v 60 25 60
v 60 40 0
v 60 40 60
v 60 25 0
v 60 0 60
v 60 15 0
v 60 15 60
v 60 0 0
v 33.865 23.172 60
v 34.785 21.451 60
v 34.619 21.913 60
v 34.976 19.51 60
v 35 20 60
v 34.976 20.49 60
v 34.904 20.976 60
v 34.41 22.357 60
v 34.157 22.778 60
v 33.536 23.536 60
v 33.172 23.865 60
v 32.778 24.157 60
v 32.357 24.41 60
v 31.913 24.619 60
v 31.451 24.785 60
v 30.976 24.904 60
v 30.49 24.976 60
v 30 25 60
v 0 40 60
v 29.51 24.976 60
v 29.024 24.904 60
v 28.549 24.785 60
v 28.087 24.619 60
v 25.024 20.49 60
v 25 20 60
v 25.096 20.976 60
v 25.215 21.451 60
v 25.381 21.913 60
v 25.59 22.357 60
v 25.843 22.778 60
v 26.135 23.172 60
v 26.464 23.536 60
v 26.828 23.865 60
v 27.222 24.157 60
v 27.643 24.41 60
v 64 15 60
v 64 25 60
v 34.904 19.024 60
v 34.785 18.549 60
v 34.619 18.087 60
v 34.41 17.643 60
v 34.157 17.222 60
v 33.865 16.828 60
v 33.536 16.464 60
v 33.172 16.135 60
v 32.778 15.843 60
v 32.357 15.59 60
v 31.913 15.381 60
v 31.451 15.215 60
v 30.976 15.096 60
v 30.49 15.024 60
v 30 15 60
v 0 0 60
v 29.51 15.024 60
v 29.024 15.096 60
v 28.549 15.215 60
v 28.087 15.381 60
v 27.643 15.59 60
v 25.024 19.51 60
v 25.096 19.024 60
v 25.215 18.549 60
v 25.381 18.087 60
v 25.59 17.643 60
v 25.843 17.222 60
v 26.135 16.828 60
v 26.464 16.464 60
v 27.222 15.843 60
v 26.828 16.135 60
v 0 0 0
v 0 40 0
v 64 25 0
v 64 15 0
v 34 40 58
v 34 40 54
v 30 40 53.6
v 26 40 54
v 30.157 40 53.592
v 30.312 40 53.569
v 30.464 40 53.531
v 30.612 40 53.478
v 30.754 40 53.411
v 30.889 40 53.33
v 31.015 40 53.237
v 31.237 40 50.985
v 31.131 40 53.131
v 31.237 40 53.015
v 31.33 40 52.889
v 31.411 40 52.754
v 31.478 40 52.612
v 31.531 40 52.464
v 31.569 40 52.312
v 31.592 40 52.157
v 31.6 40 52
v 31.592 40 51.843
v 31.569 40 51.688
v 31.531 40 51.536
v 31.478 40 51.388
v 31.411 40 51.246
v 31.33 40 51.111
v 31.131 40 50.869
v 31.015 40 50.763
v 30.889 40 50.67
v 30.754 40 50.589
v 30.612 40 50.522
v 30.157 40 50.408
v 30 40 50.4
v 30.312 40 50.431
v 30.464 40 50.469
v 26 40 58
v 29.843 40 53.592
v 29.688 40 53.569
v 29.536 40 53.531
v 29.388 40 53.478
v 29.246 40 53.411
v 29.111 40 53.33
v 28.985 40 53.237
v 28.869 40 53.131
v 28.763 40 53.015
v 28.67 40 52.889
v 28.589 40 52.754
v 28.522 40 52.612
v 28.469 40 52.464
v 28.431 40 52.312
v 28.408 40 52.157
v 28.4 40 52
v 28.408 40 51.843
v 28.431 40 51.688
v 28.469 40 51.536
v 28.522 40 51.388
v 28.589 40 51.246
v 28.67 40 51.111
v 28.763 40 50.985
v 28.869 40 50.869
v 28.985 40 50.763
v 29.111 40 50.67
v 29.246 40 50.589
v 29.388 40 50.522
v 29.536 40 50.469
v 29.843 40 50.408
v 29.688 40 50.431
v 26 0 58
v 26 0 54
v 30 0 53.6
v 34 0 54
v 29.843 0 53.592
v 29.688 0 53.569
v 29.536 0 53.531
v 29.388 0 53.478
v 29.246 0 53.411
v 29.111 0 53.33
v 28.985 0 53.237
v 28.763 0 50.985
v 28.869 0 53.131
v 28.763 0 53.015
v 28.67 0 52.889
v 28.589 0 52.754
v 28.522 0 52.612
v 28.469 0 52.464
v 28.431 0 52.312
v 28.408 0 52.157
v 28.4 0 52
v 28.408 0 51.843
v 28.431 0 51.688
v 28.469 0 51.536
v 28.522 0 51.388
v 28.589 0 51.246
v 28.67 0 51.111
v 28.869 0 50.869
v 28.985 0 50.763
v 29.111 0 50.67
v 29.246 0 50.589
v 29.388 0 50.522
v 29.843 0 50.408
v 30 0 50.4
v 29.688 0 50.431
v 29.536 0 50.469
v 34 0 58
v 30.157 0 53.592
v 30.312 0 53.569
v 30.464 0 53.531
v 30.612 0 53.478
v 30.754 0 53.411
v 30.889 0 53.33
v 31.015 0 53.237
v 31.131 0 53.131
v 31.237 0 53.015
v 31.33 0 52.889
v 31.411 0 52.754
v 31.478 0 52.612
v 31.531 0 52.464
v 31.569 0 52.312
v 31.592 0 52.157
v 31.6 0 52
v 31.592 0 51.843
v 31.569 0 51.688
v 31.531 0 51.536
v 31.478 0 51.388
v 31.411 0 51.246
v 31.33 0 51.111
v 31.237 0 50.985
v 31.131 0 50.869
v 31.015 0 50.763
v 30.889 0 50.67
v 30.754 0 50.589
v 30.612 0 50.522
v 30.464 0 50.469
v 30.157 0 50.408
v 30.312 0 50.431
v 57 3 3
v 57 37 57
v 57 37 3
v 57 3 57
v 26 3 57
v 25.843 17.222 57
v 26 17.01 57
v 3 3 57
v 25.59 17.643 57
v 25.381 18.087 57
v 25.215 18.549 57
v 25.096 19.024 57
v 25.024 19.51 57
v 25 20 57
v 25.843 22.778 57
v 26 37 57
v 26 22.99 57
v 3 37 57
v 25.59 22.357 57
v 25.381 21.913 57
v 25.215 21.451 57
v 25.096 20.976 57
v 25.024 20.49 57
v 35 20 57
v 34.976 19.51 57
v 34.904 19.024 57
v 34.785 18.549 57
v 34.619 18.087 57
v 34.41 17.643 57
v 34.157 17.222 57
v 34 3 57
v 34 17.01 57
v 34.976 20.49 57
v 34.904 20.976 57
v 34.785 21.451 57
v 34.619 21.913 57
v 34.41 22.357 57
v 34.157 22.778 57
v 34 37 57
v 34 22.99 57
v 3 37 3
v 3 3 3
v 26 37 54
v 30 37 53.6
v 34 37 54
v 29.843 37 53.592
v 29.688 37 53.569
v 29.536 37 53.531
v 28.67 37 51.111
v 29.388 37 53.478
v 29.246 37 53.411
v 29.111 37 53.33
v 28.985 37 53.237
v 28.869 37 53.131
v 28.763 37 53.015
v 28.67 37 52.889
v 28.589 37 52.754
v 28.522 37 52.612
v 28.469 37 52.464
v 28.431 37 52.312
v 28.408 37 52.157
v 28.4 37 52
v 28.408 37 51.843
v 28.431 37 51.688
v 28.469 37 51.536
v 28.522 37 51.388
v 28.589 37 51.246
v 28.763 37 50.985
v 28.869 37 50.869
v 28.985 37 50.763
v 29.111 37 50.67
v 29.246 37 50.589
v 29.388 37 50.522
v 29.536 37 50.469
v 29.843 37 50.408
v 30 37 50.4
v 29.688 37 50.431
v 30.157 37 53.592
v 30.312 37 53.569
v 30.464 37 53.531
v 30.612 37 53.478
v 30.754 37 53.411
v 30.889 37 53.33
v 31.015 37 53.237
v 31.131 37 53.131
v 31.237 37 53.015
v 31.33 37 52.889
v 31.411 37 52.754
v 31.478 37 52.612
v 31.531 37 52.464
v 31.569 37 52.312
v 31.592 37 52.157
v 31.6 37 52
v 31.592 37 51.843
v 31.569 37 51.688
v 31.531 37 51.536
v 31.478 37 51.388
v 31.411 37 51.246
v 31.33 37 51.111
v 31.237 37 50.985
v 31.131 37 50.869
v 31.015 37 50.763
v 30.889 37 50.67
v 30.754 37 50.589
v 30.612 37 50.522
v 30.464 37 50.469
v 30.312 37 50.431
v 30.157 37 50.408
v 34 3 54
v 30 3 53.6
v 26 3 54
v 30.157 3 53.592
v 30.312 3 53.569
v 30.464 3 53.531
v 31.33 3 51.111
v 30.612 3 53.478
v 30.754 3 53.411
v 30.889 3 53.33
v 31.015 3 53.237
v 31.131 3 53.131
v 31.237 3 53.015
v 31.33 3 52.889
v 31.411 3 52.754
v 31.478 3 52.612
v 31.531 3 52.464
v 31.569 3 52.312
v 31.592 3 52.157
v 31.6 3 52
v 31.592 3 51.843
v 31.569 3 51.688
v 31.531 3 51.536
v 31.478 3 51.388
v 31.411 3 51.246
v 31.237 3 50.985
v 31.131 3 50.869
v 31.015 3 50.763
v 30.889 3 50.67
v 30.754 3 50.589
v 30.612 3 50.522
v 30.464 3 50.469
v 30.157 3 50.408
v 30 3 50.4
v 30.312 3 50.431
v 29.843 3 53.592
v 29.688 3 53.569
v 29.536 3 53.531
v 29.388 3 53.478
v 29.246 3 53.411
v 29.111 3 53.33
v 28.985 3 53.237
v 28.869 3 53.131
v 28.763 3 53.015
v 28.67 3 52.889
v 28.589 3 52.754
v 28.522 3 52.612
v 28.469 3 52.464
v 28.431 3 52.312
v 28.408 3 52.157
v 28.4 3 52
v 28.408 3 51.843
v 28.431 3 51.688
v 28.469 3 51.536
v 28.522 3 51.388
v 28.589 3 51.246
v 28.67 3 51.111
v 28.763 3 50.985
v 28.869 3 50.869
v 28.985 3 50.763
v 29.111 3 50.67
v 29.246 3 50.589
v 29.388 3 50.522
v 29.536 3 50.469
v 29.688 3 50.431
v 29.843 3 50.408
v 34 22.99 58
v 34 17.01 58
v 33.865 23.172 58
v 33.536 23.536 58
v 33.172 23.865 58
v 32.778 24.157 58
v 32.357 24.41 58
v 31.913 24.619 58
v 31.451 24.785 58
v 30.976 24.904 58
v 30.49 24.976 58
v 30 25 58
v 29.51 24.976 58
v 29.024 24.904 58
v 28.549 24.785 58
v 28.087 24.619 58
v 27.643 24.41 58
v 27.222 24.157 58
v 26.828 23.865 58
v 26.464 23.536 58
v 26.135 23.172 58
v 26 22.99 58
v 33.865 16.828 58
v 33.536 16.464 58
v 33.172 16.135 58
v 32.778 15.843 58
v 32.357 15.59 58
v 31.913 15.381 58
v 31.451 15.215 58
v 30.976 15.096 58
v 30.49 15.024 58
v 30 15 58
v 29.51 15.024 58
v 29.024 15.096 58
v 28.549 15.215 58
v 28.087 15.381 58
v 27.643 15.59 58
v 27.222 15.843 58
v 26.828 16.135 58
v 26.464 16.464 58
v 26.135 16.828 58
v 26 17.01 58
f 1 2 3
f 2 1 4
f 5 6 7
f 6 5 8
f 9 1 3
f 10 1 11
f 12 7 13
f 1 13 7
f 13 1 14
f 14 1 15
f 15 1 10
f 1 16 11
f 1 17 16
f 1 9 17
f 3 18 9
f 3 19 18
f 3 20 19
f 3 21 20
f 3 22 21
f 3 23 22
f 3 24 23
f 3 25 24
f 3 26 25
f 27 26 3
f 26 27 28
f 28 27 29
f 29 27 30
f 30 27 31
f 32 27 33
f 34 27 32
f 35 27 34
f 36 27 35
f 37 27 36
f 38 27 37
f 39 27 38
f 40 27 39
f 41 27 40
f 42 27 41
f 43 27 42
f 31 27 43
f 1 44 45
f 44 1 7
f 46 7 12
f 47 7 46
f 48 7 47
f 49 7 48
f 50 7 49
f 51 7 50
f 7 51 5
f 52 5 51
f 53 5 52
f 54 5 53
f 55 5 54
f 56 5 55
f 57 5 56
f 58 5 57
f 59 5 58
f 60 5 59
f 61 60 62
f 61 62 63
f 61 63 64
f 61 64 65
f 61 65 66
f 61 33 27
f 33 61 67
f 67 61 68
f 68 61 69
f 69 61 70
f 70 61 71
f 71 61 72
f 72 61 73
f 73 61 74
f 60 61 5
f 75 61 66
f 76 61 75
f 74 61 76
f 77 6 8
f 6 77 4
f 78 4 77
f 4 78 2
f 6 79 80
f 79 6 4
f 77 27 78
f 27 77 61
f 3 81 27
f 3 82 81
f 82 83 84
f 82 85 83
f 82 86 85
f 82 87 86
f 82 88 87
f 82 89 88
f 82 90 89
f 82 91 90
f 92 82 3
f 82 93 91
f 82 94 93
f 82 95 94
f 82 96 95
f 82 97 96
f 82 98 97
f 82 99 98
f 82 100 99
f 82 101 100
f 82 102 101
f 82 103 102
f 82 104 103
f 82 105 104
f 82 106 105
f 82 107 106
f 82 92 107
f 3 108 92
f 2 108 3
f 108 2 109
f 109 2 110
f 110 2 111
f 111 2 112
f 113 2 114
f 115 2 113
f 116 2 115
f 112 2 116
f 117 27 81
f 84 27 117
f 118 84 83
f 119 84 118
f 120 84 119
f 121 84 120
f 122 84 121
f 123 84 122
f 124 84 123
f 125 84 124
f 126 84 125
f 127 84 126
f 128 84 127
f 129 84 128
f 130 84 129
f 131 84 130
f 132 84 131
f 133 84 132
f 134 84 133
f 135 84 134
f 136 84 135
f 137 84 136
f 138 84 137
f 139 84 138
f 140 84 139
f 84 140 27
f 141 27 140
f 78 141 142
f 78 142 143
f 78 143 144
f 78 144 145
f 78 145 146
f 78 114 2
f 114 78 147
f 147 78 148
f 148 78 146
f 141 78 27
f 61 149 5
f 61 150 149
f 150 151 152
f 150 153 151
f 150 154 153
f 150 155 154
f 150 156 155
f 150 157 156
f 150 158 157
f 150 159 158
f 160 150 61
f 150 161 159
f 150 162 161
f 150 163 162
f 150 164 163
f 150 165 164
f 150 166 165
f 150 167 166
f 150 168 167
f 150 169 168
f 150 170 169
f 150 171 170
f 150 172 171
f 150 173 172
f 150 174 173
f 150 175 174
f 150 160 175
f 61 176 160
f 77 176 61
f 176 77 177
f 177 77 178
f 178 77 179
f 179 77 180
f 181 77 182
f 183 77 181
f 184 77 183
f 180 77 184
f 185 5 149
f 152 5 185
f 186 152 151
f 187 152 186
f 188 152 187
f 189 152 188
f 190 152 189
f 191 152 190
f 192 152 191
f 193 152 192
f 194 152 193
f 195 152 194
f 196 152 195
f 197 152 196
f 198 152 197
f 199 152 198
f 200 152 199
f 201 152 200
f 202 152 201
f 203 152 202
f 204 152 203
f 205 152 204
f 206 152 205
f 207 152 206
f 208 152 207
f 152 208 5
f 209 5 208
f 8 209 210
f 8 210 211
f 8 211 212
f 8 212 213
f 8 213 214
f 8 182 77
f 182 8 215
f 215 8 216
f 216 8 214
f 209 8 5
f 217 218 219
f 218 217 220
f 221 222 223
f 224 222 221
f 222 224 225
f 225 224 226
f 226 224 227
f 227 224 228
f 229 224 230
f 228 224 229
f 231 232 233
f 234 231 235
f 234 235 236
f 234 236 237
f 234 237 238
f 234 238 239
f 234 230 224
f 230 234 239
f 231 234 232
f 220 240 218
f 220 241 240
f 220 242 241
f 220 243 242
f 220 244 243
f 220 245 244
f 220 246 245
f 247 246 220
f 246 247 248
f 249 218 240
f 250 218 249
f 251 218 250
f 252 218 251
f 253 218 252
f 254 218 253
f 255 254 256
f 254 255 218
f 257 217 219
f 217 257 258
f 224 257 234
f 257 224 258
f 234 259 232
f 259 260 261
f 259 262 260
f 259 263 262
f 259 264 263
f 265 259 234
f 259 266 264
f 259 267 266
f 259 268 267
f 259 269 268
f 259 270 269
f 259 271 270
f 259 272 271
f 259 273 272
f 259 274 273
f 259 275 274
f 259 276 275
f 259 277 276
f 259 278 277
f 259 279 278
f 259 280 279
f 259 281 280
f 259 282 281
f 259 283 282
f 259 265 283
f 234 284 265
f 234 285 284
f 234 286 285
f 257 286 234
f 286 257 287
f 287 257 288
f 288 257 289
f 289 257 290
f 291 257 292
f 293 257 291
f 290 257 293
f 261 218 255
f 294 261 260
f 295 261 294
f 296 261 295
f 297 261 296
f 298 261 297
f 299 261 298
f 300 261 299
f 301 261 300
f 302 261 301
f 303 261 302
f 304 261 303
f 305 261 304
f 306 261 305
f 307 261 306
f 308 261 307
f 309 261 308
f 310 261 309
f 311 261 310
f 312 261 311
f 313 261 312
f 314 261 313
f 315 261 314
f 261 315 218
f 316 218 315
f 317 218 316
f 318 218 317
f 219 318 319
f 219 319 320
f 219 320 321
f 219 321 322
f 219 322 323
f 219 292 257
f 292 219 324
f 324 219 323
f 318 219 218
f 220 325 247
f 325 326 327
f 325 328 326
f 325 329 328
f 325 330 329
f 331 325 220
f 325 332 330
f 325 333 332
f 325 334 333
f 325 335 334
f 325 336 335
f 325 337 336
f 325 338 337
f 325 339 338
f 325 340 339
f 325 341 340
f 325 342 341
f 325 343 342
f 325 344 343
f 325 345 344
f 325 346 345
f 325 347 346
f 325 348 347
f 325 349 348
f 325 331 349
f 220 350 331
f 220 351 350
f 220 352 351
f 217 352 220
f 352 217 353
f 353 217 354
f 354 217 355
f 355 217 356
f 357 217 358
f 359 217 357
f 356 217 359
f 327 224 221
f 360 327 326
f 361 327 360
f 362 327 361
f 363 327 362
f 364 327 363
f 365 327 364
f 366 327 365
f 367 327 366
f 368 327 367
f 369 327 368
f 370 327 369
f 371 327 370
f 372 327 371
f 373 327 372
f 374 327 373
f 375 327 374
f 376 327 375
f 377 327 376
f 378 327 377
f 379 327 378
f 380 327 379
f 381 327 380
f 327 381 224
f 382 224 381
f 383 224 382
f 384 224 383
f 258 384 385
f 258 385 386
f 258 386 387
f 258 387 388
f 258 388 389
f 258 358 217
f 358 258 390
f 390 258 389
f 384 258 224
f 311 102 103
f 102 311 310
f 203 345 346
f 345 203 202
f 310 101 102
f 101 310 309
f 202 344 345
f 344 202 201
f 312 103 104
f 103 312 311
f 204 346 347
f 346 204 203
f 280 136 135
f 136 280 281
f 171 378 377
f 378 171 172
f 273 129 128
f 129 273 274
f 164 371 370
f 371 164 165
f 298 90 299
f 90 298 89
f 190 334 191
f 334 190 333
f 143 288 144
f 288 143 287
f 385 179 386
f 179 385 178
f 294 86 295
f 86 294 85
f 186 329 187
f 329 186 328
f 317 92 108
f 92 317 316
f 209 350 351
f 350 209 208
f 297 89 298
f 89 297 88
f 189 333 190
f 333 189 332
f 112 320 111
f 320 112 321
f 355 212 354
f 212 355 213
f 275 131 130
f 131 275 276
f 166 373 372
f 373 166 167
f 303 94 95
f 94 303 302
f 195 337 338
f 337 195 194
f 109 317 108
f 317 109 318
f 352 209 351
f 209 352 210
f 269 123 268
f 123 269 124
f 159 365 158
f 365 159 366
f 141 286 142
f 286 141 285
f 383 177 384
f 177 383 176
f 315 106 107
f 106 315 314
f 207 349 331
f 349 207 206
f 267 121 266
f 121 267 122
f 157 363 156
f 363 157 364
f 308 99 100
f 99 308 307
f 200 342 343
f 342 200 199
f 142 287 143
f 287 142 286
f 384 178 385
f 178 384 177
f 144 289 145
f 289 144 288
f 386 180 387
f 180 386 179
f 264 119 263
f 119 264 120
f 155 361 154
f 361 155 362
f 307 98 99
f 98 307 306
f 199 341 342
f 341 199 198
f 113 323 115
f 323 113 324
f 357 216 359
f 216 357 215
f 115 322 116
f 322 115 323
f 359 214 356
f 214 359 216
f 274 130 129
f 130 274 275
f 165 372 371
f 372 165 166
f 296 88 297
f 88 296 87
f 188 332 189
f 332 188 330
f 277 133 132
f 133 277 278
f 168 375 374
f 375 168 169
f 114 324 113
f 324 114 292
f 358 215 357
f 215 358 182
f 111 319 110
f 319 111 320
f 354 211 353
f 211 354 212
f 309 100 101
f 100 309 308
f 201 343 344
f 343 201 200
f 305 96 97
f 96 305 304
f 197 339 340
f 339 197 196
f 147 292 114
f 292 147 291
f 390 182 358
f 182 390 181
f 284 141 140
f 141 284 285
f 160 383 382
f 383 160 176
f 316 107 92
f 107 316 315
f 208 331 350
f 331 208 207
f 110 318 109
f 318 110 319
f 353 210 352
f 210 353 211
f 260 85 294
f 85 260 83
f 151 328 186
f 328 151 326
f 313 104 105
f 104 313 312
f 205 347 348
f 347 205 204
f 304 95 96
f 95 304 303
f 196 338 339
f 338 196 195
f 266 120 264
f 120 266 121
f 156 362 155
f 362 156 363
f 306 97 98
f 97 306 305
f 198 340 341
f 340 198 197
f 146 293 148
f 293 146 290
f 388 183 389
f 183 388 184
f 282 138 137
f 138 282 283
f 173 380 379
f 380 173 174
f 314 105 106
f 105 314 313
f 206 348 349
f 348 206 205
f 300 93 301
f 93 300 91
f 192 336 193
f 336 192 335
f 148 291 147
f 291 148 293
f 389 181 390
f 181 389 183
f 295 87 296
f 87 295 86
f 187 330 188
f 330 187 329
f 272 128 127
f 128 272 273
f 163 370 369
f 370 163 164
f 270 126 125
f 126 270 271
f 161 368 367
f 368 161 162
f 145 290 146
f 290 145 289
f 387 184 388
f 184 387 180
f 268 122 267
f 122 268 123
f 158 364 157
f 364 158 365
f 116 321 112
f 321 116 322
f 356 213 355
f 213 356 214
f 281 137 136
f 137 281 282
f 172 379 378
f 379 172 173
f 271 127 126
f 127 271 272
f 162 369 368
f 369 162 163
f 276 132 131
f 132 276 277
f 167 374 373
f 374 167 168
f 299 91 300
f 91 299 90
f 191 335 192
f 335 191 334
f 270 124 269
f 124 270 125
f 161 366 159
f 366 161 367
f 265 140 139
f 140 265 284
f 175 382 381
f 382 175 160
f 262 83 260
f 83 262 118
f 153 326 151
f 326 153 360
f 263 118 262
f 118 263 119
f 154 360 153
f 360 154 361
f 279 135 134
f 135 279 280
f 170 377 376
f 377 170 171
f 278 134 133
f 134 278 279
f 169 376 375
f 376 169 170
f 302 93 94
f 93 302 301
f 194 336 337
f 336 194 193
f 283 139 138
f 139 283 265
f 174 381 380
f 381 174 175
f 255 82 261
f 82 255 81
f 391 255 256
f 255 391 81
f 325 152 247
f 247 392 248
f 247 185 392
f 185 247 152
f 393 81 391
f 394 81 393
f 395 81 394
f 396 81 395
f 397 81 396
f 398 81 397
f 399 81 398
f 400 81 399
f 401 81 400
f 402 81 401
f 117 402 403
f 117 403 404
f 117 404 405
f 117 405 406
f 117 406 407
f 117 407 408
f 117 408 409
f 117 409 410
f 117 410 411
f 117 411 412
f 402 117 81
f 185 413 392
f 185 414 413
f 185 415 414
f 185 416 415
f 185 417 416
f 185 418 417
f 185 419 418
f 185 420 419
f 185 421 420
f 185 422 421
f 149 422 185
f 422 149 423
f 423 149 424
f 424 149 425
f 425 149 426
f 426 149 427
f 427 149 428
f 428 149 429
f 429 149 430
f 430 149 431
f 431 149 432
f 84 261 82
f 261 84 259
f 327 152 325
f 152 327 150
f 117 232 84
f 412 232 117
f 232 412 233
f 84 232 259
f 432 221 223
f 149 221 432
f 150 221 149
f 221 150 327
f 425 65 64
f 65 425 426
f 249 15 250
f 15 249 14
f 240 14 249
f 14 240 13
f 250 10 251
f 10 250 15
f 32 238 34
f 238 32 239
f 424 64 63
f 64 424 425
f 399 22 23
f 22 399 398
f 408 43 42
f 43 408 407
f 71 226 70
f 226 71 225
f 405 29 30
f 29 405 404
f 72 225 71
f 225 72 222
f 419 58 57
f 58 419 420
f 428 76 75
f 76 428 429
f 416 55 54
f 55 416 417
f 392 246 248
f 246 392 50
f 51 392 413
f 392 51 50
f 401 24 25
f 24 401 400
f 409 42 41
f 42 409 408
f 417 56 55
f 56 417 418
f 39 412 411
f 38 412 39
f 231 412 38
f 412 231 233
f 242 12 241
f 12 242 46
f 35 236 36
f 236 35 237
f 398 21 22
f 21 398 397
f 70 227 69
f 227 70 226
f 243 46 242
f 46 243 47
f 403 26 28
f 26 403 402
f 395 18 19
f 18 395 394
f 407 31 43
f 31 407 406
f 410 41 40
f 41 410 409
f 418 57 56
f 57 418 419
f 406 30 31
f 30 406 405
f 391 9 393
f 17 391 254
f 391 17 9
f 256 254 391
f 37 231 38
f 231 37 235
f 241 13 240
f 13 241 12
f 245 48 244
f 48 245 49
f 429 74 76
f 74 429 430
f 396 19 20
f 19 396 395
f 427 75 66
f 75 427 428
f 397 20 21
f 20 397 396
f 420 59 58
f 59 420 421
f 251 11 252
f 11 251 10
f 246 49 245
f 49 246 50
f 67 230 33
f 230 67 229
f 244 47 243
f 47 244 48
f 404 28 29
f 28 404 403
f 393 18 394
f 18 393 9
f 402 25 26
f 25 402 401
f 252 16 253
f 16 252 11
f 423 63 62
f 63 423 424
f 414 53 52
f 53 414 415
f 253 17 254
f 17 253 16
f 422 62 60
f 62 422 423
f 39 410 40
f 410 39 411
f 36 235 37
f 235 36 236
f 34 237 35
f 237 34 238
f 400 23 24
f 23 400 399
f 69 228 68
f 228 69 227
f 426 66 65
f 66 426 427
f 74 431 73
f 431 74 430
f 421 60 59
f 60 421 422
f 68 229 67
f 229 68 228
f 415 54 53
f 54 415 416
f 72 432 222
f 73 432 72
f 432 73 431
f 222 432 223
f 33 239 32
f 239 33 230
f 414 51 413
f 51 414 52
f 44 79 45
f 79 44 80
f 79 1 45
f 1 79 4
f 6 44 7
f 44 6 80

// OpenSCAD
// file: 00_common.scad
// vertical-lift-bridge :: COMMON PARAMETERS
// All dimensions in millimetres. Imported by every part file.
// Ratified parameters from audit Q1–Q7. Do not edit without group approval.

// ==== BUILD VOLUME ====
PRINTER_X = 220;
PRINTER_Y = 220;
PRINTER_Z = 250;
$fn = 64;  // smoothness for production prints

// ==== OVERALL FOOTPRINT ====
FOOTPRINT_X = 1200;        // along the road / cable axis
FOOTPRINT_Y = 600;         // across the river
BASE_T      = 6;           // base panel thickness
WATERWAY_W  = 200;         // navigable channel width

// ==== TOWERS ====
TOWER_H        = 350;       // total height (split-printed in 2 sections)
TOWER_SPLIT    = 175;       // join height
TOWER_W        = 90;        // width
TOWER_D        = 60;        // depth
TOWER_WALL     = 4;         // wall thickness
TOWER_INNER_W  = TOWER_W - 2*TOWER_WALL;
TOWER_INNER_D  = TOWER_D - 2*TOWER_WALL;
TOWER_SPACING  = 800;       // tower-to-tower centre distance

// ==== DECK ====
DECK_L  = 200;              // along the road
DECK_W  = 120;              // across the road
DECK_T  = 6;                // thickness
DECK_LIFT = 180;            // vertical travel

// ==== COUNTERWEIGHT ====
CW_L  = 60;
CW_W  = 40;
CW_H  = 60;
CW_WALL = 3;
CW_NUT_POCKET_D = 14;       // M8 nut across-flats + clearance
CW_NUT_POCKET_H = 8;

// ==== PULLEY ====
PULLEY_D       = 50;
PULLEY_BORE    = 6.2;       // 6 mm shaft + 0.2 clearance
PULLEY_W       = 20;
PULLEY_GROOVE_D = 1.4;      // 1 mm cable + 0.4 clearance
PULLEY_HUB_D   = 12;
PULLEY_HUB_H   = 8;

// ==== MOTOR ====
MOTOR_BODY_D   = 25;        // JGA25-370 body
MOTOR_BODY_L   = 32;
MOTOR_GEARBOX_L = 19;
MOTOR_SHAFT_D  = 6.2;       // 6 mm shaft + 0.2 clearance
MOTOR_FLAT_W   = 5.5;
MOTOR_MOUNT_W  = 35;
MOTOR_MOUNT_T  = 5;
MOTOR_MOUNT_HOLE_D = 3.2;   // M3 clearance

// ==== CABLE GUIDE ====
CABLE_GUIDE_W = 40;
CABLE_GUIDE_D = 30;
CABLE_GUIDE_H = 25;
CABLE_GUIDE_GROOVE_R = 0.7; // half of 1.4 cable channel

// ==== ROAD BARRIER ====
BARRIER_L = 80;
BARRIER_W = 15;
BARRIER_T = 8;
BARRIER_SERVO_HORN_D = 6;

// ==== PCB ENCLOSURE ====
PCB_X = 100;
PCB_Y = 80;
PCB_T = 1.6;
ENC_WALL = 2.5;
ENC_GAP  = 0.3;
ENC_PCB_STANDOFF_H = 5;
ENC_LID_H = 8;
ENC_BASE_H = PCB_T + ENC_PCB_STANDOFF_H + 8;
ENC_OUTER_X = PCB_X + 2*(ENC_WALL + ENC_GAP);
ENC_OUTER_Y = PCB_Y + 2*(ENC_WALL + ENC_GAP);

// ==== CAMERA MOUNT (ESP32-CAM AI-Thinker) ====
CAM_BOARD_X = 40.5;
CAM_BOARD_Y = 27;
CAM_BOARD_T = 1.6;
CAM_LENS_D  = 9.5;
CAM_GANTRY_H = 220;          // height above road for FOV
CAM_TILT_DEG = 25;

// ==== TFT DISPLAY MOUNT ====
// 2.8" ILI9341 with XPT2046 — common module 86×56×4 mm with 8 mm header on one side
TFT_BOARD_X = 86;
TFT_BOARD_Y = 56;
TFT_BOARD_T = 4;
TFT_VISIBLE_X = 58;          // active area
TFT_VISIBLE_Y = 44;
TFT_TILT_DEG = 35;           // Q5 ratified — 35° tilt
TFT_BEZEL = 5;
TFT_BACK_DEPTH = 18;         // header height behind board

// ==== HARDWARE ====
M3_CLEAR  = 3.2;
M3_TAP    = 2.8;
M3_HEAD_D = 6.0;
M3_HEAD_H = 3.0;
M3_INSERT_D = 4.2;           // brass heat-set insert OD
M3_INSERT_H = 5.0;
M8_BOLT_D = 8.4;
// main file
// 04_counterweight_left.scad — counterweight shell (LEFT)
// Hollow rectangular box that accepts M8 nut/washer fill to tune
// final mass to 120 g ± 2 g. Includes T-slot guide rib for tower rail.
include <00_common.scad>

module counterweight() {
    difference() {
        cube([CW_L, CW_W, CW_H]);
        // hollow cavity for fill mass
        translate([CW_WALL, CW_WALL, CW_WALL])
            cube([CW_L - 2*CW_WALL, CW_W - 2*CW_WALL, CW_H - 2*CW_WALL]);

        // top cable attachment hole (M3 cross-pin)
        translate([CW_L/2, -0.1, CW_H - 8])
            rotate([-90,0,0]) cylinder(d=3.2, h=CW_W + 0.2);
        translate([CW_L/2 - 4, -0.1, CW_H - 6])
            cube([8, CW_W + 0.2, 4]);

        // fill access hole (top, plug with PLA glue after tuning)
        translate([CW_L/2, CW_W/2, CW_H - CW_WALL - 0.1])
            cylinder(d=10, h=CW_WALL + 0.2);
    }

    // T-slot guide rib (mates with tower inner T-slot)
    translate([CW_L, CW_W/2 - 5, 0])
        cube([4, 10, CW_H]);
}

counterweight();
